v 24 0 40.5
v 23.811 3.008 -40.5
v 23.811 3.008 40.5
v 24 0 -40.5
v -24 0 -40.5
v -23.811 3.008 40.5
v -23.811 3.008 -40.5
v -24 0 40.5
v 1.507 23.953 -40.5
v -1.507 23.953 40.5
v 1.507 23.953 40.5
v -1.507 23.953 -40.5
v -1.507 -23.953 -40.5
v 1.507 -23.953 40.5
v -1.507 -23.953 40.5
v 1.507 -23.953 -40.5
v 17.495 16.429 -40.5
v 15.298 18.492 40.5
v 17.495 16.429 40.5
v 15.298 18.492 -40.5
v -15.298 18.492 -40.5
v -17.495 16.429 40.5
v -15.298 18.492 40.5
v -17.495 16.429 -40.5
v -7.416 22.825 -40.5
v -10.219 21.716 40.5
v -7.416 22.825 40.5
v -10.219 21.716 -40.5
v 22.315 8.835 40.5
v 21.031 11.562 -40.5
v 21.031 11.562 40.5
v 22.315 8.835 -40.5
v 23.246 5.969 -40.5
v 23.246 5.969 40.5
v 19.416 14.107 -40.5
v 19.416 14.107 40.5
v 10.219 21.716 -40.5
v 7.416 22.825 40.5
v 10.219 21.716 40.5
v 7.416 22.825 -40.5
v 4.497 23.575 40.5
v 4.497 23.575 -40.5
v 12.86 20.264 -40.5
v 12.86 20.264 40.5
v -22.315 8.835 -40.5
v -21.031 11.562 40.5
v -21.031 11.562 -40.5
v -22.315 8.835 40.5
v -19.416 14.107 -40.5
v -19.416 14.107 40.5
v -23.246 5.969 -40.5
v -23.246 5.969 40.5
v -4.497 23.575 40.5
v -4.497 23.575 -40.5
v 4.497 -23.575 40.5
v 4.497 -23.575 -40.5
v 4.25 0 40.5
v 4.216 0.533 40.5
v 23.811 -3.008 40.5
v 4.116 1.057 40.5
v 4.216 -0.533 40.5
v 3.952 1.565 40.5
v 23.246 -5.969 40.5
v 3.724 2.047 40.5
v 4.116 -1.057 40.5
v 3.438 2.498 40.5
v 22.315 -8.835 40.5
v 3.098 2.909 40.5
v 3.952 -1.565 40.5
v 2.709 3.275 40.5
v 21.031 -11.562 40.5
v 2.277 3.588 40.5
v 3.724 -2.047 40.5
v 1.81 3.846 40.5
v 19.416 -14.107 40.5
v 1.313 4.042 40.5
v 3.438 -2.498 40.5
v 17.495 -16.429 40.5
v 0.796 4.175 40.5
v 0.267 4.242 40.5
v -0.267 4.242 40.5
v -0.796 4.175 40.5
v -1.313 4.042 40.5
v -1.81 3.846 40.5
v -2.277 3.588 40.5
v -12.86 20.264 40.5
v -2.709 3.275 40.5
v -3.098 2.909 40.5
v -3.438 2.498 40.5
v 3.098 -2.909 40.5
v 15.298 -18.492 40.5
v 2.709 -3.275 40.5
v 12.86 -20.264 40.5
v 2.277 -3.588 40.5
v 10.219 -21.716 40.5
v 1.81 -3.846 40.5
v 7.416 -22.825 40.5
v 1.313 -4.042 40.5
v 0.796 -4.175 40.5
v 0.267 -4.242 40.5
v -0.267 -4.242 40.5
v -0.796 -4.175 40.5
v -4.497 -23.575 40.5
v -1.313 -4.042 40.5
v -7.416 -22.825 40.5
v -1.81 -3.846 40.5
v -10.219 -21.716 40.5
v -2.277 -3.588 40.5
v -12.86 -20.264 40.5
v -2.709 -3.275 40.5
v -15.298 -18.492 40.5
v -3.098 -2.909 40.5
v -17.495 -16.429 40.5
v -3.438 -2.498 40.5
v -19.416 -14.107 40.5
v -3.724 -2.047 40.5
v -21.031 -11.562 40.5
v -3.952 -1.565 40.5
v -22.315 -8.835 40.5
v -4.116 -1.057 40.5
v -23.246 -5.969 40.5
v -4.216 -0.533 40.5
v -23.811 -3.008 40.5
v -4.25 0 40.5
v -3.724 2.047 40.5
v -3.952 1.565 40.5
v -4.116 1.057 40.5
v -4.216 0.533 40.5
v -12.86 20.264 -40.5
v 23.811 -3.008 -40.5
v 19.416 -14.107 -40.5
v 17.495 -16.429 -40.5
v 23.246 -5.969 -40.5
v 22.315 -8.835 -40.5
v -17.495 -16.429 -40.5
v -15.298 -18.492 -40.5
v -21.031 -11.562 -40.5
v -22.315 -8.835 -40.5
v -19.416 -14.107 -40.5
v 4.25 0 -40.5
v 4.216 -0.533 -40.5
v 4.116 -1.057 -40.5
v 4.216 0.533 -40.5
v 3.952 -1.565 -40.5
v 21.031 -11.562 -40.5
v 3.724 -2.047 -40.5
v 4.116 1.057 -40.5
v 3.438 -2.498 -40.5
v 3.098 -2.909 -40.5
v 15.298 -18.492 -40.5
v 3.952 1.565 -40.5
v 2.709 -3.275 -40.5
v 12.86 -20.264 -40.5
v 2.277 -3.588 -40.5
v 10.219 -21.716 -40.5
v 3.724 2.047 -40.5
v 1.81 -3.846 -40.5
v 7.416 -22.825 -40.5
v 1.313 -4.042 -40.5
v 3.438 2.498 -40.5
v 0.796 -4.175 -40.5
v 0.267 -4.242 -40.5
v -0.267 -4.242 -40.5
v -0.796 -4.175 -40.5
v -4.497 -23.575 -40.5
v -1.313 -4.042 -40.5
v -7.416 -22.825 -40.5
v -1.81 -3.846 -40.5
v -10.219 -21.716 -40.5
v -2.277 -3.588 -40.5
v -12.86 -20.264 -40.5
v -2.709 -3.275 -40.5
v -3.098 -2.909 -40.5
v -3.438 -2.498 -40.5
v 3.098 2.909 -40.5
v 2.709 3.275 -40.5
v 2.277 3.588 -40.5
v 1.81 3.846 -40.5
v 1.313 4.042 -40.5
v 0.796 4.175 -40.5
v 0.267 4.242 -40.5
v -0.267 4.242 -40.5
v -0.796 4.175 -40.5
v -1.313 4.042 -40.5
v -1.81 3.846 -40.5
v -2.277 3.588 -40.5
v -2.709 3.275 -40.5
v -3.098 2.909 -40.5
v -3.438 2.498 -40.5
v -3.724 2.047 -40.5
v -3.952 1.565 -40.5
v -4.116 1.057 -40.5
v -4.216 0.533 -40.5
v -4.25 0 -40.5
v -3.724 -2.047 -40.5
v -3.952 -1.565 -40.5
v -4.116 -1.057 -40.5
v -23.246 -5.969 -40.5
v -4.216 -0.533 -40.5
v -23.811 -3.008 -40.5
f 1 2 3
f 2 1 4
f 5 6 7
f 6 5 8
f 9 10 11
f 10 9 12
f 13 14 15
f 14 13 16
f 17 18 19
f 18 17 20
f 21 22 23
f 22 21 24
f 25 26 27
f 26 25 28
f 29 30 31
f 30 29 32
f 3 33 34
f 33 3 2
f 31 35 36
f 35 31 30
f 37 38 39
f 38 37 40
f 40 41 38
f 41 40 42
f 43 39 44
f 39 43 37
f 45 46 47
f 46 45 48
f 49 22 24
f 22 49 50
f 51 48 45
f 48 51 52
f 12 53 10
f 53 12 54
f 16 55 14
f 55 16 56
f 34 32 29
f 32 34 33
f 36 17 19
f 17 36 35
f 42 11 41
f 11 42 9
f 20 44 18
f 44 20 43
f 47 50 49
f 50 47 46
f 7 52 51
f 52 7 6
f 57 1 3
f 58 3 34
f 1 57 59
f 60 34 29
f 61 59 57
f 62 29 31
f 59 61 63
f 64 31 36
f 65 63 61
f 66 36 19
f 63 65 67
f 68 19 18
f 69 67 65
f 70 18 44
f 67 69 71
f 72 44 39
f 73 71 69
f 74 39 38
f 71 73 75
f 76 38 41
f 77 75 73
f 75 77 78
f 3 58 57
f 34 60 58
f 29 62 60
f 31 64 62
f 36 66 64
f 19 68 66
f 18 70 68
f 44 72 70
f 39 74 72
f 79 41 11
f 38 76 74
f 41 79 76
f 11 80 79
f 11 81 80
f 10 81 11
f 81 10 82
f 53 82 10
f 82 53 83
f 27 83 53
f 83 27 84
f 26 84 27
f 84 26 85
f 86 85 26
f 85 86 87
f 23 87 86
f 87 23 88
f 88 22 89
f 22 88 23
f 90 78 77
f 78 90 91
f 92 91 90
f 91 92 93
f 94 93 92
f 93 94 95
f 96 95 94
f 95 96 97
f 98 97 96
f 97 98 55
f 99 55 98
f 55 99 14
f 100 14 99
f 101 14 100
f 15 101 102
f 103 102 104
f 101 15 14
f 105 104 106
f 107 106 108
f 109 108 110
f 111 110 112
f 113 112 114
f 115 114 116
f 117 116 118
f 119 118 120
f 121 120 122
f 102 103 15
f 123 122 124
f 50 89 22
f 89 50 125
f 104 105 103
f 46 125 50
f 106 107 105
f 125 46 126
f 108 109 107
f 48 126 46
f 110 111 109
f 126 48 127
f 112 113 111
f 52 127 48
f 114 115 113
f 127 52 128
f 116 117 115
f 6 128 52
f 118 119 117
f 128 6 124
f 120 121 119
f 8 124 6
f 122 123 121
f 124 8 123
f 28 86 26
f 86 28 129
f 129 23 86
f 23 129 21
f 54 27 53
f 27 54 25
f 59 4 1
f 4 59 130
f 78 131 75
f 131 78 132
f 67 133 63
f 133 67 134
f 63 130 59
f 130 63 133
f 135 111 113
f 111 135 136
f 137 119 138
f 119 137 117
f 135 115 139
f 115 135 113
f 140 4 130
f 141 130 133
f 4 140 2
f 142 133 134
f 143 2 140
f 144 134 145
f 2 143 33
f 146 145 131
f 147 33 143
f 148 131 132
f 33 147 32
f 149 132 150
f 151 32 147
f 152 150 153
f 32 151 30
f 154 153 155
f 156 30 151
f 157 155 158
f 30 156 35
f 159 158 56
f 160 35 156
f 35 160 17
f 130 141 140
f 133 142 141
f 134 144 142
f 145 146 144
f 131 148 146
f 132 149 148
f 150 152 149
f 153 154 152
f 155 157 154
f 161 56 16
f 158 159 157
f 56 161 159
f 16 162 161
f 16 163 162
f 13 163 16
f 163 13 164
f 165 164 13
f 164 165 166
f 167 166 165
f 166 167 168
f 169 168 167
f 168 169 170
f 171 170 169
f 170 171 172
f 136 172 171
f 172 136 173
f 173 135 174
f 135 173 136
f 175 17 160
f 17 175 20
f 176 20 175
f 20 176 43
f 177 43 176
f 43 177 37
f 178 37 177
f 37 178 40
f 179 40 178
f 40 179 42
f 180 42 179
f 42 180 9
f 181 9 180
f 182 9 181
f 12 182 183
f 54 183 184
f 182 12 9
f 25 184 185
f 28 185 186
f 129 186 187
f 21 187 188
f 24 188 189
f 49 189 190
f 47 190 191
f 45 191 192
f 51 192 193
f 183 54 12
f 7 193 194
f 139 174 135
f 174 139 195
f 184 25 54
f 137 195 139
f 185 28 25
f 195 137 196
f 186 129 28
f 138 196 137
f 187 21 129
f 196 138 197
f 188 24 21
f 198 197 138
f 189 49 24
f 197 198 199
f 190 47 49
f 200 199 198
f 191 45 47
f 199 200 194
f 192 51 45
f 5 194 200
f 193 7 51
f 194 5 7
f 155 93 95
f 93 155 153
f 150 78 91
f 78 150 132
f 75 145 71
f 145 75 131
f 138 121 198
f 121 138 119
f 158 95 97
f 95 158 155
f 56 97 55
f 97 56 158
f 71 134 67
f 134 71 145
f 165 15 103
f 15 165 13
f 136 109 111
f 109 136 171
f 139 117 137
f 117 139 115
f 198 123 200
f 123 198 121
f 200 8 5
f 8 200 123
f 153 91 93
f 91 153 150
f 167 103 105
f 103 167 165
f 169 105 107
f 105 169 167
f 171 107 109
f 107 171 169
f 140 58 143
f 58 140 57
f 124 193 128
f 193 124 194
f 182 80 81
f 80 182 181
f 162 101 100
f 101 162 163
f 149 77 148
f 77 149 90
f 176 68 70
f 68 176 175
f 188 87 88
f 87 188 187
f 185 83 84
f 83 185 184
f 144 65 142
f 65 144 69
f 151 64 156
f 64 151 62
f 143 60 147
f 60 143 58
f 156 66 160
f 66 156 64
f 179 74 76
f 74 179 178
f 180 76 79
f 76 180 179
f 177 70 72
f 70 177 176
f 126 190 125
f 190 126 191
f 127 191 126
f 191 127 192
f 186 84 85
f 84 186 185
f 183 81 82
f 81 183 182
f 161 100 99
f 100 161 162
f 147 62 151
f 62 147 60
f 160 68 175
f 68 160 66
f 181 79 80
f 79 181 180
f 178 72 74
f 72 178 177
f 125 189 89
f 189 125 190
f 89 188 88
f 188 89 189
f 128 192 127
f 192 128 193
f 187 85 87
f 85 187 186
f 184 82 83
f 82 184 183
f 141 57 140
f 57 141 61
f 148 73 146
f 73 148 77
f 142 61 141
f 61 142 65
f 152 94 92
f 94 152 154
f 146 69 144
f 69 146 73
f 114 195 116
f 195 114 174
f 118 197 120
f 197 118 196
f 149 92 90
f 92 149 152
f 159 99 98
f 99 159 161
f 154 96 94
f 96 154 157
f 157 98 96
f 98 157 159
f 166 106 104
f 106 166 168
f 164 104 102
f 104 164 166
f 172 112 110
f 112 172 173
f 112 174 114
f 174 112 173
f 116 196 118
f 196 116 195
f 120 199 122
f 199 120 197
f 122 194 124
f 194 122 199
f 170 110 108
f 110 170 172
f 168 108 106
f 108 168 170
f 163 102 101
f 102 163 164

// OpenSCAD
$fn = 50;


difference() {
	union() {
		translate(v = [0, 0, -40.5000000000]) {
			cylinder(h = 81, r = 24.0000000000);
		}
	}
	union() {
		translate(v = [0, 0, -100.0000000000]) {
			cylinder(h = 200, r = 4.2500000000);
		}
	}
}
